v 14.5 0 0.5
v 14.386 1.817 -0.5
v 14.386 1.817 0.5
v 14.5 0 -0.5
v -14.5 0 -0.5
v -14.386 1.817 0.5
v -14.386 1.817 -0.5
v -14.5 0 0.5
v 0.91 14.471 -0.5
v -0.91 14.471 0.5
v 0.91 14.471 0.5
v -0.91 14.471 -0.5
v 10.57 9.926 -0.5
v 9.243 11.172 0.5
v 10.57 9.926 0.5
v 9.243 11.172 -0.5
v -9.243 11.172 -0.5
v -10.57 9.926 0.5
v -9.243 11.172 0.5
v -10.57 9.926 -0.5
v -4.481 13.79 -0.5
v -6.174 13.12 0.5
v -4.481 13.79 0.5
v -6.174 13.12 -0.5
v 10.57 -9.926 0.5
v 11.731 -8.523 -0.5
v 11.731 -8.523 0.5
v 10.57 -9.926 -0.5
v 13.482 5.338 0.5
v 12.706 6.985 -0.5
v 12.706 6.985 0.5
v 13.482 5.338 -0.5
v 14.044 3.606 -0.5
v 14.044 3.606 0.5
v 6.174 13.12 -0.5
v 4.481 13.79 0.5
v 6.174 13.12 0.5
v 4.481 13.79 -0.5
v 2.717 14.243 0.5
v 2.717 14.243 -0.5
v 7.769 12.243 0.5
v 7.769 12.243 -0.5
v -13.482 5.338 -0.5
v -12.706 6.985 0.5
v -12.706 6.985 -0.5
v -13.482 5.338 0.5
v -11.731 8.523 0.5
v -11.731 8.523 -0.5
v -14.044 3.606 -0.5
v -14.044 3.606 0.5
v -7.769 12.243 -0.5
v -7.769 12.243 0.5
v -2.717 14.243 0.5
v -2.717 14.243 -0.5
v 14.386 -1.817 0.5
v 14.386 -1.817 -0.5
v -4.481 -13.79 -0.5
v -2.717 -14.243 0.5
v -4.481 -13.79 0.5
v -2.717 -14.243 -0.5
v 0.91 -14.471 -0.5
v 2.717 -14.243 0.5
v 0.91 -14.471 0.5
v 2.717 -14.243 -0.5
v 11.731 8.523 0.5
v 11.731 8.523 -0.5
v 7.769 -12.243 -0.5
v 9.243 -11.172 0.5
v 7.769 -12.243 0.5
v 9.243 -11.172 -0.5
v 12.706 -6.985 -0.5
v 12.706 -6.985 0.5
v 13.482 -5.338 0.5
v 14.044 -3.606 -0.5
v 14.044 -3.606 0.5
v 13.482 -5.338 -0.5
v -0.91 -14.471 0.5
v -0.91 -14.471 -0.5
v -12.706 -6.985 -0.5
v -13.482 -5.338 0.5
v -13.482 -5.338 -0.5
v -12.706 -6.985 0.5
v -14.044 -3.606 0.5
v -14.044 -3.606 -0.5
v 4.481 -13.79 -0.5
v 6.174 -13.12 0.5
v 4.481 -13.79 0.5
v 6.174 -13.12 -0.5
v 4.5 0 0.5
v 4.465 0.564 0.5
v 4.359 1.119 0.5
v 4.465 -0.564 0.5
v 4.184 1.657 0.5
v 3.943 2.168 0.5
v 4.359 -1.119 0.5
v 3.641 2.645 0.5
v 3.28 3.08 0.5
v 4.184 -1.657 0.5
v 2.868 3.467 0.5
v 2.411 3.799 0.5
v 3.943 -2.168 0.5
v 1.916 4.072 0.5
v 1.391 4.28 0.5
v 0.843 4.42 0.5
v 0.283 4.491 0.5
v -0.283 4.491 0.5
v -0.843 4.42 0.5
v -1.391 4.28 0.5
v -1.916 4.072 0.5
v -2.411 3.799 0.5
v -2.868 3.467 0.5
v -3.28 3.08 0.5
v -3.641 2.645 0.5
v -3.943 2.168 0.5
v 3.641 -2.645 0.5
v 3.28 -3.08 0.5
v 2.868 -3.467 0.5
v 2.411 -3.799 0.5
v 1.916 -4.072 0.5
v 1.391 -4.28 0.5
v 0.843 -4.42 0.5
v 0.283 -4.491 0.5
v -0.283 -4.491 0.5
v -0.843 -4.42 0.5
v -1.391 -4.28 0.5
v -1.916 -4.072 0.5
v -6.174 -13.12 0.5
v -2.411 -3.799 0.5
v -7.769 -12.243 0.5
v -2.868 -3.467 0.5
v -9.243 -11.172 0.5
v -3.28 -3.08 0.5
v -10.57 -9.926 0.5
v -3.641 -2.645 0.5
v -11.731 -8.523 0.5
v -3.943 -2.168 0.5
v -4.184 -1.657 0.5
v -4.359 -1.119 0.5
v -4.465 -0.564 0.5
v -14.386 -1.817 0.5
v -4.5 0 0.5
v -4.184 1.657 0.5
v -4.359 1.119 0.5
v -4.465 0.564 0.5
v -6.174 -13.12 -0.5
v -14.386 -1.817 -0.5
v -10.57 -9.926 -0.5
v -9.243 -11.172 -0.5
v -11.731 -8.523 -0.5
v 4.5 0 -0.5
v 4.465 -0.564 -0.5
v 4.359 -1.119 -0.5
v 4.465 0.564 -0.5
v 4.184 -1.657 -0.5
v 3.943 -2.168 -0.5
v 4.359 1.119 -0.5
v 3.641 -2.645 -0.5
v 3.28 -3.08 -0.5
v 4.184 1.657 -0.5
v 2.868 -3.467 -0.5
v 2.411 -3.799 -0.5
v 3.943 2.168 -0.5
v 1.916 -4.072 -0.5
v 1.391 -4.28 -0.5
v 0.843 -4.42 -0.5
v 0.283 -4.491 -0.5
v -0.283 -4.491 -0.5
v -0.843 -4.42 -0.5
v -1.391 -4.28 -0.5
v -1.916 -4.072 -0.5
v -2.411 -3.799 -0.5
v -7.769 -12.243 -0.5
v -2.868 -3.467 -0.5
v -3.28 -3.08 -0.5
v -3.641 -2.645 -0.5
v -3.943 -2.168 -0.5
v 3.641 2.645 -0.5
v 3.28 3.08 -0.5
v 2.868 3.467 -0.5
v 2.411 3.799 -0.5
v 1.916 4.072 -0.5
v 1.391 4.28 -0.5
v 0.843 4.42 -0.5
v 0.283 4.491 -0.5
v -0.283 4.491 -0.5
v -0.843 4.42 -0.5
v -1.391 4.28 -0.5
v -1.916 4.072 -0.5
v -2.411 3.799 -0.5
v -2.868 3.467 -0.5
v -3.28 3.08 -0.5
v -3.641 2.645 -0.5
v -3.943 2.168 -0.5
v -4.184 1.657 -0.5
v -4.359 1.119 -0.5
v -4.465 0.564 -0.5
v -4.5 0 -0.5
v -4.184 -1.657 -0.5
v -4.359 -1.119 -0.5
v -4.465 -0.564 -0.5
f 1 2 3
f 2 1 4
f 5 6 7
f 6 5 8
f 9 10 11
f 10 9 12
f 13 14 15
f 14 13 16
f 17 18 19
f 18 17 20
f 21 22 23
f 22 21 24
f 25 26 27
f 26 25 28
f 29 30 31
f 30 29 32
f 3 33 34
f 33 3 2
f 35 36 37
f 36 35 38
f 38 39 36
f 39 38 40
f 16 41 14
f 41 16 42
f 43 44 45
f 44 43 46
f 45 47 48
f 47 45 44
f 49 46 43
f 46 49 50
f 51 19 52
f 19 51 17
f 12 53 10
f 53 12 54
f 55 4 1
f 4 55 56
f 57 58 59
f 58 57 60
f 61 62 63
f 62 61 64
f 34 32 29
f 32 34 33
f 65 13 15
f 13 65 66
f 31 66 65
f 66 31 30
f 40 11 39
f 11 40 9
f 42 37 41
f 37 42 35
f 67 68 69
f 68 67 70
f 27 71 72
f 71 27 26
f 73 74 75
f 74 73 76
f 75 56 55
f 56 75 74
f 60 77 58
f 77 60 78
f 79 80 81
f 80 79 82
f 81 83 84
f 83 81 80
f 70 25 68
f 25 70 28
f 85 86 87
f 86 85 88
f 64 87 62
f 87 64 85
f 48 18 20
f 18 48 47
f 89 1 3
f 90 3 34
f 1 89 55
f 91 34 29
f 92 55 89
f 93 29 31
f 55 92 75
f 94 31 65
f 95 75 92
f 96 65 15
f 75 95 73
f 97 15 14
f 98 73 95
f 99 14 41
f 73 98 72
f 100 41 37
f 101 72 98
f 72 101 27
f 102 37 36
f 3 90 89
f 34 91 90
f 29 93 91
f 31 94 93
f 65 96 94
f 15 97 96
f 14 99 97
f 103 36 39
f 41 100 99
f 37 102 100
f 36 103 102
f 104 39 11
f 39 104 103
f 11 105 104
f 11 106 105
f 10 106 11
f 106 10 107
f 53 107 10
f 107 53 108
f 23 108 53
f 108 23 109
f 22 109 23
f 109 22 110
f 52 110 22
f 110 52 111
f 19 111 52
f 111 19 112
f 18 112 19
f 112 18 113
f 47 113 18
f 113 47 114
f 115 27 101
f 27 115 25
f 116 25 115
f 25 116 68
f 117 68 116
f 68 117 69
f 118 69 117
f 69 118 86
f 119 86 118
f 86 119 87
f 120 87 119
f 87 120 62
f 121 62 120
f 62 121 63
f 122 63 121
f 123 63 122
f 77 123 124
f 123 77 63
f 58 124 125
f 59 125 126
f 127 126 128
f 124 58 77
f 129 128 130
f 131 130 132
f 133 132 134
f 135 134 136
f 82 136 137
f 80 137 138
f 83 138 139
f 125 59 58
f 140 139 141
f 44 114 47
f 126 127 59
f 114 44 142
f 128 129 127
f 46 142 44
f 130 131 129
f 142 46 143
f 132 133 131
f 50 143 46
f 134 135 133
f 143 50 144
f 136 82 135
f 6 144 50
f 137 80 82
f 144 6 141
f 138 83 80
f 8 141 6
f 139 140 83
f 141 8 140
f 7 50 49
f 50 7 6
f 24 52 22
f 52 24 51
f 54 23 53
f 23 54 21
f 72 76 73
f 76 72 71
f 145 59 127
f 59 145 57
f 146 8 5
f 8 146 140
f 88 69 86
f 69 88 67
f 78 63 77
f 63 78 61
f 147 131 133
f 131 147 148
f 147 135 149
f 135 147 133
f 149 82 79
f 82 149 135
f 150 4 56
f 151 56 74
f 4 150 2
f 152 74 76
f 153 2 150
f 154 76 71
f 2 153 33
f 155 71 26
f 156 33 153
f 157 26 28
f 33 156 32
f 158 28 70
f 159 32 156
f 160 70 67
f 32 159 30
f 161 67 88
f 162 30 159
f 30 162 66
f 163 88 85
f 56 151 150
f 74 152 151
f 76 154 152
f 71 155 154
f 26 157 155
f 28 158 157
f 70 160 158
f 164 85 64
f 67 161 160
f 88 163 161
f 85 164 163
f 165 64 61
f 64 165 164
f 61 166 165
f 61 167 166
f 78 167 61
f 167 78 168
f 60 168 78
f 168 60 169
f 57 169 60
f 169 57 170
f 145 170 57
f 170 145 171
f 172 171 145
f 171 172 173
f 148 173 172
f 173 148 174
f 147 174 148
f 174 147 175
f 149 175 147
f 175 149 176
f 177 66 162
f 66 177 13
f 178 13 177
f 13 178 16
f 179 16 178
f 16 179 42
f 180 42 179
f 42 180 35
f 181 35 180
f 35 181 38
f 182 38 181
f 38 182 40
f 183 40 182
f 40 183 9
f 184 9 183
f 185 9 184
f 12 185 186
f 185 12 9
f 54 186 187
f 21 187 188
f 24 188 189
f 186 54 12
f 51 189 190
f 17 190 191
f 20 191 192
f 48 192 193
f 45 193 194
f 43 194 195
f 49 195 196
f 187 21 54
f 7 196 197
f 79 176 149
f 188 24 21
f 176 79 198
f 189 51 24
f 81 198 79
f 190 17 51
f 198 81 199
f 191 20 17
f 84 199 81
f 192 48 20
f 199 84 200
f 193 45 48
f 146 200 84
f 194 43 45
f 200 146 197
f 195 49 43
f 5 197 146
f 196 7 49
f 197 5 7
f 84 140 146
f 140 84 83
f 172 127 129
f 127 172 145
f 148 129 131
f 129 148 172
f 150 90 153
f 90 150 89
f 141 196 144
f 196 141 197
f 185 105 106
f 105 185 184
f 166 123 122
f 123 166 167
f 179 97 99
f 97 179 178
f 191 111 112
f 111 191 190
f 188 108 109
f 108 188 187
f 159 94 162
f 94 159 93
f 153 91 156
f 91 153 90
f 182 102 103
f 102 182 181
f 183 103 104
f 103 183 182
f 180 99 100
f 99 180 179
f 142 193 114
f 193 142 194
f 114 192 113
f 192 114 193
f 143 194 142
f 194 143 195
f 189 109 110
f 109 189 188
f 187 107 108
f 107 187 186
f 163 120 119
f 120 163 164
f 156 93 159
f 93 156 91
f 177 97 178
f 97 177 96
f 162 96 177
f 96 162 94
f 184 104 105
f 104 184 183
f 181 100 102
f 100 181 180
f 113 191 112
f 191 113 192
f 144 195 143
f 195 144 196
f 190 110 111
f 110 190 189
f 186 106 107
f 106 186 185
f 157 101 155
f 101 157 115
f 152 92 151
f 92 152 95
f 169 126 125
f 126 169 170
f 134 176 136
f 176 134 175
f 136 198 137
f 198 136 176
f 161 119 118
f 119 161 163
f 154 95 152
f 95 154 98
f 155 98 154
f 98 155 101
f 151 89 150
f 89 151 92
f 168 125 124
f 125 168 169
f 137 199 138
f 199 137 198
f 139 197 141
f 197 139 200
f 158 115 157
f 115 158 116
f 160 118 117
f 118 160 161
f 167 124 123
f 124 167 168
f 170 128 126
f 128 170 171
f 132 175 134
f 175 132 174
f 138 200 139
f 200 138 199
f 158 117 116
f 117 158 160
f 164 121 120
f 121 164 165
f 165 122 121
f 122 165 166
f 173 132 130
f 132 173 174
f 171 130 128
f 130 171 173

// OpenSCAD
$fn = 50;


difference() {
	union() {
		translate(v = [0, 0, -0.5000000000]) {
			cylinder(h = 1, r = 14.5000000000);
		}
	}
	union() {
		translate(v = [0, 0, -100.0000000000]) {
			cylinder(h = 200, r = 4.5000000000);
		}
	}
}
